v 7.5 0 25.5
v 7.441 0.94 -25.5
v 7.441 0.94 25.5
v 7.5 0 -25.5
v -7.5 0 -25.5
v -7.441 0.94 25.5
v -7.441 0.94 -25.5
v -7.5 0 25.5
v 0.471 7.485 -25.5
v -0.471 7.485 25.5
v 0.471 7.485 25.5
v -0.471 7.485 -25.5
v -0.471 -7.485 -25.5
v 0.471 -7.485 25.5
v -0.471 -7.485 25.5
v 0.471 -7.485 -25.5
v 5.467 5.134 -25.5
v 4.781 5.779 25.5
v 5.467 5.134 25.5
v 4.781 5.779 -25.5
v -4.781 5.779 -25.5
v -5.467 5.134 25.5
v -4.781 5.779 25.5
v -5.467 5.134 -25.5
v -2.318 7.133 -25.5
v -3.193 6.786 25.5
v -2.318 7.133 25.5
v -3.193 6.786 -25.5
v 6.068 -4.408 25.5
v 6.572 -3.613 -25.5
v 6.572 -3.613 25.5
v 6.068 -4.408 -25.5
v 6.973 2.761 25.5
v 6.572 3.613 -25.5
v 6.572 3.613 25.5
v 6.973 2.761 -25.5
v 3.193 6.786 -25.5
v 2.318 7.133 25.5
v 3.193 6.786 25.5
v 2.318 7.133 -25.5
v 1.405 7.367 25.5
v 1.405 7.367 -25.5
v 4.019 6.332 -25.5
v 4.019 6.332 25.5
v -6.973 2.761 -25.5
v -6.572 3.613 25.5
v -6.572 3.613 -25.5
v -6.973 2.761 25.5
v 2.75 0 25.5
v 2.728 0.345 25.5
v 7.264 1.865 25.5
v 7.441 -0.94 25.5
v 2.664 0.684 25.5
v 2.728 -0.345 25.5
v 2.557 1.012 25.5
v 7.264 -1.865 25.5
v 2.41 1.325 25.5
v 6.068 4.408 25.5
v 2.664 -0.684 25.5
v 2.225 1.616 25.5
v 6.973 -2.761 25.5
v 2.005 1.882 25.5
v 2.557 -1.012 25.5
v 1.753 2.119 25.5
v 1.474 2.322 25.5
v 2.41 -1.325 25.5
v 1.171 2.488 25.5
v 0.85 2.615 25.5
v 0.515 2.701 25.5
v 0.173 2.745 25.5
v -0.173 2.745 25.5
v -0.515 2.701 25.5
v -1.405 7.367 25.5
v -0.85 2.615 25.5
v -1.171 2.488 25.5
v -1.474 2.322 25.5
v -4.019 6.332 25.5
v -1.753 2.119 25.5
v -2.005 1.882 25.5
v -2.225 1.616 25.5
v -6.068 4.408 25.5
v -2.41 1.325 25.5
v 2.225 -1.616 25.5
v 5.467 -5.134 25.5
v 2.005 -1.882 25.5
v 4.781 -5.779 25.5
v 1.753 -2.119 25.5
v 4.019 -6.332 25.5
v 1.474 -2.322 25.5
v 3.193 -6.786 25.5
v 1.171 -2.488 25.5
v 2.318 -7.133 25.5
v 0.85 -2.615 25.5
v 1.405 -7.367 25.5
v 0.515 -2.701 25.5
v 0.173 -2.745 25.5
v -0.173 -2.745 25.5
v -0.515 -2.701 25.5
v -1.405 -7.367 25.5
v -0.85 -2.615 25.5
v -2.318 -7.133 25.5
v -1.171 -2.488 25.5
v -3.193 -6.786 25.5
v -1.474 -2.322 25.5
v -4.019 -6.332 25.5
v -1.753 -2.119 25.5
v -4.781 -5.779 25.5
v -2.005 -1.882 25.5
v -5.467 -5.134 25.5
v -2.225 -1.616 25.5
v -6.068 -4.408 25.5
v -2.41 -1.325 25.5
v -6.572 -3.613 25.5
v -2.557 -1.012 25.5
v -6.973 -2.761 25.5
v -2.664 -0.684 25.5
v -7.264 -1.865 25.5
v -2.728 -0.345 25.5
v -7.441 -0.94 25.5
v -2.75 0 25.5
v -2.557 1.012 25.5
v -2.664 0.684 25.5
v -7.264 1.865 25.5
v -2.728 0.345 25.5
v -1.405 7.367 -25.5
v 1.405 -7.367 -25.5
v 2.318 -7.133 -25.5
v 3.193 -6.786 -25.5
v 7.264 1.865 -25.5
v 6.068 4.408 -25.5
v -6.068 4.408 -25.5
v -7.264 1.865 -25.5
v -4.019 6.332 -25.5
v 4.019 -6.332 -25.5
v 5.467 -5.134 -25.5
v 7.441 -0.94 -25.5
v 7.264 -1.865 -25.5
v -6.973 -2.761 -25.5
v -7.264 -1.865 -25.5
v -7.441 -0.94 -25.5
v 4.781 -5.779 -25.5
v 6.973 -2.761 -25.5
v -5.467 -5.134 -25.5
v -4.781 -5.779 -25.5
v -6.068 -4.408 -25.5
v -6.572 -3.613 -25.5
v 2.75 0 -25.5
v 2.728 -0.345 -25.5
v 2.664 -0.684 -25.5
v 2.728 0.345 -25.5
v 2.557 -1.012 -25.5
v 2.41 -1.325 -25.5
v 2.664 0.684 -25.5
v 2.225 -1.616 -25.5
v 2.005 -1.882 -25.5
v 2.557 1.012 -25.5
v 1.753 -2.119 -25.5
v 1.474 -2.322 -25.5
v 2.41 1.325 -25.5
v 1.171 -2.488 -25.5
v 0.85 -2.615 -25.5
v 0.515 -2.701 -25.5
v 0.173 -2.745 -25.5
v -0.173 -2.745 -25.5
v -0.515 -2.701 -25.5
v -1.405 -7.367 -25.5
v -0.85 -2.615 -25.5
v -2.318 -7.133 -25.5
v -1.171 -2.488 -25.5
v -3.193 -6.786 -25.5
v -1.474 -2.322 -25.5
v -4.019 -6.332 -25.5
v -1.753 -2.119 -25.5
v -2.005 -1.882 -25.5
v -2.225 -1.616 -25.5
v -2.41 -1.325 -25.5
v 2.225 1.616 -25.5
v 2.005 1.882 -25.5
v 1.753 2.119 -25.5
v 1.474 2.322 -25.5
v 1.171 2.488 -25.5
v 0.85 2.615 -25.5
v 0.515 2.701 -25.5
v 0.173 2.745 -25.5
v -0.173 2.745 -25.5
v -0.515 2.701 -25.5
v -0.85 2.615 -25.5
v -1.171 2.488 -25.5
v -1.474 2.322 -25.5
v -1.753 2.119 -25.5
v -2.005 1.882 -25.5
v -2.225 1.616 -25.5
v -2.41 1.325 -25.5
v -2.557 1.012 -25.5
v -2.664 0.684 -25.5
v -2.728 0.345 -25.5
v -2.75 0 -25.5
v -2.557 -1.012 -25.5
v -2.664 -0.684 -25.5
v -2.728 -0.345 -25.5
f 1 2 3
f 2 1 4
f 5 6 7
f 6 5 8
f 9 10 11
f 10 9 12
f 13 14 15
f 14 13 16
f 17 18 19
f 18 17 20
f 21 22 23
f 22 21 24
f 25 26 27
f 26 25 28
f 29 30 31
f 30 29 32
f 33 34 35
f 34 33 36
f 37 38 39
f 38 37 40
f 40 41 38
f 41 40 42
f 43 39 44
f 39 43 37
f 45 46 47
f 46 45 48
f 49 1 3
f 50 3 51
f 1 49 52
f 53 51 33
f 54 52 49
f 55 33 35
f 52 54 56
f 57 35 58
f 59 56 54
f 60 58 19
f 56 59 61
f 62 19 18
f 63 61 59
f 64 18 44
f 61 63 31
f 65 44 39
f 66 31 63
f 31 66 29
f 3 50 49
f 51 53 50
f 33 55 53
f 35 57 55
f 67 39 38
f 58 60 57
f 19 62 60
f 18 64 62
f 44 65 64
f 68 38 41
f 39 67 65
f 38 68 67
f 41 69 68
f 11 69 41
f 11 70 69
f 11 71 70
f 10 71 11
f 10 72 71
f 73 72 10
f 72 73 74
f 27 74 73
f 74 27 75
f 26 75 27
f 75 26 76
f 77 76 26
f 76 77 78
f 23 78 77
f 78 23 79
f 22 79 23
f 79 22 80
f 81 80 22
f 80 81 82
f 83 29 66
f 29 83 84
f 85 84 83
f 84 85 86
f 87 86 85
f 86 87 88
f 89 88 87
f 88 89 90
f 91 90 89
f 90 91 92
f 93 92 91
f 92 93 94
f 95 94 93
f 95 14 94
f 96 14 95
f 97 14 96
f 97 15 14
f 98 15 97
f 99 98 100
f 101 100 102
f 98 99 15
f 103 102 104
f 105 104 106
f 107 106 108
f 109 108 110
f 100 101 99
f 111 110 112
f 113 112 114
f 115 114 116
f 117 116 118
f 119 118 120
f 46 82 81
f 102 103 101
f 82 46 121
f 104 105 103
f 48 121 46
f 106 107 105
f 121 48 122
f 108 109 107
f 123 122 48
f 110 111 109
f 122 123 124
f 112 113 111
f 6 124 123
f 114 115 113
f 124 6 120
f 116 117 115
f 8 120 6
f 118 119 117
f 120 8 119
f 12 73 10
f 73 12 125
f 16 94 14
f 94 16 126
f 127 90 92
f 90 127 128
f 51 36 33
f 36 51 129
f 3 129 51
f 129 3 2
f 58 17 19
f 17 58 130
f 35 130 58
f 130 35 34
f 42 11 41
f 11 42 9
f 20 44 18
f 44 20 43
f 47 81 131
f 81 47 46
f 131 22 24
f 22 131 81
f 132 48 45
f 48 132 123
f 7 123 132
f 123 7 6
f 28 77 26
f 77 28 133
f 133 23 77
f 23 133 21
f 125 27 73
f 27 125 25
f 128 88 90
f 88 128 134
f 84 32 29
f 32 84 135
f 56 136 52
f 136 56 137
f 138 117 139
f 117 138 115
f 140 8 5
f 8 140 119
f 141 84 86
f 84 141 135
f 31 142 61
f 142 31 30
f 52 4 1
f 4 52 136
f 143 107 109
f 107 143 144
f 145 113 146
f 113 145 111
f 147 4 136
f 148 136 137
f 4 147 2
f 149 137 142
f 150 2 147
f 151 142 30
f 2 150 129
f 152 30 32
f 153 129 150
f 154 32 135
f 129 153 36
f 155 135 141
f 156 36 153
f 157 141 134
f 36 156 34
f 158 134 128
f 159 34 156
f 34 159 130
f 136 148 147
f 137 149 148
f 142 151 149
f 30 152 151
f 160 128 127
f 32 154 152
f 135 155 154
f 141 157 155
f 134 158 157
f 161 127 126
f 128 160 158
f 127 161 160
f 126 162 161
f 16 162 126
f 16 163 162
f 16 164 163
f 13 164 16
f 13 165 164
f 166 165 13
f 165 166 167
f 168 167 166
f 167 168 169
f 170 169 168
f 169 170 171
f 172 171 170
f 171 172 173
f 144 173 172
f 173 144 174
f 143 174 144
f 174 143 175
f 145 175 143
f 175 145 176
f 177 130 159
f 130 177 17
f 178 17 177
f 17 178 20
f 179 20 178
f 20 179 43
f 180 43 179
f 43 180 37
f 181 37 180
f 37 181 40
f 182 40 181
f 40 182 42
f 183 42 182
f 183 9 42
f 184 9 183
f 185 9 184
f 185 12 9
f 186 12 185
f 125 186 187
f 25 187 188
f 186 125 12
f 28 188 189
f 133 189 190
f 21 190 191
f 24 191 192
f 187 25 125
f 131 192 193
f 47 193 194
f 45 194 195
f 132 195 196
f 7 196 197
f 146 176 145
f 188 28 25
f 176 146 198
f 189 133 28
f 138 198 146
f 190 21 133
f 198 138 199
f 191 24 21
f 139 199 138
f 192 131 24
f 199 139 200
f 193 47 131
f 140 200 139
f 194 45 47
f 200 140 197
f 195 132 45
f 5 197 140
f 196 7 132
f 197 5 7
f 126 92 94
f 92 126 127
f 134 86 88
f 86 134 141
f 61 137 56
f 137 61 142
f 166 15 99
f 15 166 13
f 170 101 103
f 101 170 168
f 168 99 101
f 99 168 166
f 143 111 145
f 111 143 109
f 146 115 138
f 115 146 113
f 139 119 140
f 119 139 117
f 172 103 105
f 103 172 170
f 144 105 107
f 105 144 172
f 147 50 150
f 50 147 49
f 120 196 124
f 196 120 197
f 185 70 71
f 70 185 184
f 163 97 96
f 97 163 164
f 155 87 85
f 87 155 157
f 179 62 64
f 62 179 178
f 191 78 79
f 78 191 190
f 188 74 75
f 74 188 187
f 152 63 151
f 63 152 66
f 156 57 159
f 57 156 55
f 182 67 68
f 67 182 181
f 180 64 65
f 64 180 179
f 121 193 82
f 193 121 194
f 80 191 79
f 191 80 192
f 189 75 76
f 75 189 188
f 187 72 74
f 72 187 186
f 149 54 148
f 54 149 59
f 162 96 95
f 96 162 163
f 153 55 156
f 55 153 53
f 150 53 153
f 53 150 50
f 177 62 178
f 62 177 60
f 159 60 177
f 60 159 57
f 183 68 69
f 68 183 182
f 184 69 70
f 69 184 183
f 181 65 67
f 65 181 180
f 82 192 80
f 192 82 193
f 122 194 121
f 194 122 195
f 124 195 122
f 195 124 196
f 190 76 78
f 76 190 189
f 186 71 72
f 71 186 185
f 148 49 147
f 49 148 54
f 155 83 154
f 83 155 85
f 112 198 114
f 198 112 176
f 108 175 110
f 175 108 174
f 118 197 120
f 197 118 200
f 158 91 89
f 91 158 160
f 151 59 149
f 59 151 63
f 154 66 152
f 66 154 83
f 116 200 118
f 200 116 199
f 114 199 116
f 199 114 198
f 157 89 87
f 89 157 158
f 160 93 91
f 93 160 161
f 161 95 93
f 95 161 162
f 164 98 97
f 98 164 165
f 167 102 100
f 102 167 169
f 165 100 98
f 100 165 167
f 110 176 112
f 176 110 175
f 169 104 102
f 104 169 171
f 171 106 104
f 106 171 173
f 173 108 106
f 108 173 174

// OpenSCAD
$fn = 50;


difference() {
	union() {
		translate(v = [0, 0, -25.5000000000]) {
			cylinder(h = 51, r = 7.5000000000);
		}
	}
	union() {
		translate(v = [0, 0, -100.0000000000]) {
			cylinder(h = 200, r = 2.7500000000);
		}
	}
}
